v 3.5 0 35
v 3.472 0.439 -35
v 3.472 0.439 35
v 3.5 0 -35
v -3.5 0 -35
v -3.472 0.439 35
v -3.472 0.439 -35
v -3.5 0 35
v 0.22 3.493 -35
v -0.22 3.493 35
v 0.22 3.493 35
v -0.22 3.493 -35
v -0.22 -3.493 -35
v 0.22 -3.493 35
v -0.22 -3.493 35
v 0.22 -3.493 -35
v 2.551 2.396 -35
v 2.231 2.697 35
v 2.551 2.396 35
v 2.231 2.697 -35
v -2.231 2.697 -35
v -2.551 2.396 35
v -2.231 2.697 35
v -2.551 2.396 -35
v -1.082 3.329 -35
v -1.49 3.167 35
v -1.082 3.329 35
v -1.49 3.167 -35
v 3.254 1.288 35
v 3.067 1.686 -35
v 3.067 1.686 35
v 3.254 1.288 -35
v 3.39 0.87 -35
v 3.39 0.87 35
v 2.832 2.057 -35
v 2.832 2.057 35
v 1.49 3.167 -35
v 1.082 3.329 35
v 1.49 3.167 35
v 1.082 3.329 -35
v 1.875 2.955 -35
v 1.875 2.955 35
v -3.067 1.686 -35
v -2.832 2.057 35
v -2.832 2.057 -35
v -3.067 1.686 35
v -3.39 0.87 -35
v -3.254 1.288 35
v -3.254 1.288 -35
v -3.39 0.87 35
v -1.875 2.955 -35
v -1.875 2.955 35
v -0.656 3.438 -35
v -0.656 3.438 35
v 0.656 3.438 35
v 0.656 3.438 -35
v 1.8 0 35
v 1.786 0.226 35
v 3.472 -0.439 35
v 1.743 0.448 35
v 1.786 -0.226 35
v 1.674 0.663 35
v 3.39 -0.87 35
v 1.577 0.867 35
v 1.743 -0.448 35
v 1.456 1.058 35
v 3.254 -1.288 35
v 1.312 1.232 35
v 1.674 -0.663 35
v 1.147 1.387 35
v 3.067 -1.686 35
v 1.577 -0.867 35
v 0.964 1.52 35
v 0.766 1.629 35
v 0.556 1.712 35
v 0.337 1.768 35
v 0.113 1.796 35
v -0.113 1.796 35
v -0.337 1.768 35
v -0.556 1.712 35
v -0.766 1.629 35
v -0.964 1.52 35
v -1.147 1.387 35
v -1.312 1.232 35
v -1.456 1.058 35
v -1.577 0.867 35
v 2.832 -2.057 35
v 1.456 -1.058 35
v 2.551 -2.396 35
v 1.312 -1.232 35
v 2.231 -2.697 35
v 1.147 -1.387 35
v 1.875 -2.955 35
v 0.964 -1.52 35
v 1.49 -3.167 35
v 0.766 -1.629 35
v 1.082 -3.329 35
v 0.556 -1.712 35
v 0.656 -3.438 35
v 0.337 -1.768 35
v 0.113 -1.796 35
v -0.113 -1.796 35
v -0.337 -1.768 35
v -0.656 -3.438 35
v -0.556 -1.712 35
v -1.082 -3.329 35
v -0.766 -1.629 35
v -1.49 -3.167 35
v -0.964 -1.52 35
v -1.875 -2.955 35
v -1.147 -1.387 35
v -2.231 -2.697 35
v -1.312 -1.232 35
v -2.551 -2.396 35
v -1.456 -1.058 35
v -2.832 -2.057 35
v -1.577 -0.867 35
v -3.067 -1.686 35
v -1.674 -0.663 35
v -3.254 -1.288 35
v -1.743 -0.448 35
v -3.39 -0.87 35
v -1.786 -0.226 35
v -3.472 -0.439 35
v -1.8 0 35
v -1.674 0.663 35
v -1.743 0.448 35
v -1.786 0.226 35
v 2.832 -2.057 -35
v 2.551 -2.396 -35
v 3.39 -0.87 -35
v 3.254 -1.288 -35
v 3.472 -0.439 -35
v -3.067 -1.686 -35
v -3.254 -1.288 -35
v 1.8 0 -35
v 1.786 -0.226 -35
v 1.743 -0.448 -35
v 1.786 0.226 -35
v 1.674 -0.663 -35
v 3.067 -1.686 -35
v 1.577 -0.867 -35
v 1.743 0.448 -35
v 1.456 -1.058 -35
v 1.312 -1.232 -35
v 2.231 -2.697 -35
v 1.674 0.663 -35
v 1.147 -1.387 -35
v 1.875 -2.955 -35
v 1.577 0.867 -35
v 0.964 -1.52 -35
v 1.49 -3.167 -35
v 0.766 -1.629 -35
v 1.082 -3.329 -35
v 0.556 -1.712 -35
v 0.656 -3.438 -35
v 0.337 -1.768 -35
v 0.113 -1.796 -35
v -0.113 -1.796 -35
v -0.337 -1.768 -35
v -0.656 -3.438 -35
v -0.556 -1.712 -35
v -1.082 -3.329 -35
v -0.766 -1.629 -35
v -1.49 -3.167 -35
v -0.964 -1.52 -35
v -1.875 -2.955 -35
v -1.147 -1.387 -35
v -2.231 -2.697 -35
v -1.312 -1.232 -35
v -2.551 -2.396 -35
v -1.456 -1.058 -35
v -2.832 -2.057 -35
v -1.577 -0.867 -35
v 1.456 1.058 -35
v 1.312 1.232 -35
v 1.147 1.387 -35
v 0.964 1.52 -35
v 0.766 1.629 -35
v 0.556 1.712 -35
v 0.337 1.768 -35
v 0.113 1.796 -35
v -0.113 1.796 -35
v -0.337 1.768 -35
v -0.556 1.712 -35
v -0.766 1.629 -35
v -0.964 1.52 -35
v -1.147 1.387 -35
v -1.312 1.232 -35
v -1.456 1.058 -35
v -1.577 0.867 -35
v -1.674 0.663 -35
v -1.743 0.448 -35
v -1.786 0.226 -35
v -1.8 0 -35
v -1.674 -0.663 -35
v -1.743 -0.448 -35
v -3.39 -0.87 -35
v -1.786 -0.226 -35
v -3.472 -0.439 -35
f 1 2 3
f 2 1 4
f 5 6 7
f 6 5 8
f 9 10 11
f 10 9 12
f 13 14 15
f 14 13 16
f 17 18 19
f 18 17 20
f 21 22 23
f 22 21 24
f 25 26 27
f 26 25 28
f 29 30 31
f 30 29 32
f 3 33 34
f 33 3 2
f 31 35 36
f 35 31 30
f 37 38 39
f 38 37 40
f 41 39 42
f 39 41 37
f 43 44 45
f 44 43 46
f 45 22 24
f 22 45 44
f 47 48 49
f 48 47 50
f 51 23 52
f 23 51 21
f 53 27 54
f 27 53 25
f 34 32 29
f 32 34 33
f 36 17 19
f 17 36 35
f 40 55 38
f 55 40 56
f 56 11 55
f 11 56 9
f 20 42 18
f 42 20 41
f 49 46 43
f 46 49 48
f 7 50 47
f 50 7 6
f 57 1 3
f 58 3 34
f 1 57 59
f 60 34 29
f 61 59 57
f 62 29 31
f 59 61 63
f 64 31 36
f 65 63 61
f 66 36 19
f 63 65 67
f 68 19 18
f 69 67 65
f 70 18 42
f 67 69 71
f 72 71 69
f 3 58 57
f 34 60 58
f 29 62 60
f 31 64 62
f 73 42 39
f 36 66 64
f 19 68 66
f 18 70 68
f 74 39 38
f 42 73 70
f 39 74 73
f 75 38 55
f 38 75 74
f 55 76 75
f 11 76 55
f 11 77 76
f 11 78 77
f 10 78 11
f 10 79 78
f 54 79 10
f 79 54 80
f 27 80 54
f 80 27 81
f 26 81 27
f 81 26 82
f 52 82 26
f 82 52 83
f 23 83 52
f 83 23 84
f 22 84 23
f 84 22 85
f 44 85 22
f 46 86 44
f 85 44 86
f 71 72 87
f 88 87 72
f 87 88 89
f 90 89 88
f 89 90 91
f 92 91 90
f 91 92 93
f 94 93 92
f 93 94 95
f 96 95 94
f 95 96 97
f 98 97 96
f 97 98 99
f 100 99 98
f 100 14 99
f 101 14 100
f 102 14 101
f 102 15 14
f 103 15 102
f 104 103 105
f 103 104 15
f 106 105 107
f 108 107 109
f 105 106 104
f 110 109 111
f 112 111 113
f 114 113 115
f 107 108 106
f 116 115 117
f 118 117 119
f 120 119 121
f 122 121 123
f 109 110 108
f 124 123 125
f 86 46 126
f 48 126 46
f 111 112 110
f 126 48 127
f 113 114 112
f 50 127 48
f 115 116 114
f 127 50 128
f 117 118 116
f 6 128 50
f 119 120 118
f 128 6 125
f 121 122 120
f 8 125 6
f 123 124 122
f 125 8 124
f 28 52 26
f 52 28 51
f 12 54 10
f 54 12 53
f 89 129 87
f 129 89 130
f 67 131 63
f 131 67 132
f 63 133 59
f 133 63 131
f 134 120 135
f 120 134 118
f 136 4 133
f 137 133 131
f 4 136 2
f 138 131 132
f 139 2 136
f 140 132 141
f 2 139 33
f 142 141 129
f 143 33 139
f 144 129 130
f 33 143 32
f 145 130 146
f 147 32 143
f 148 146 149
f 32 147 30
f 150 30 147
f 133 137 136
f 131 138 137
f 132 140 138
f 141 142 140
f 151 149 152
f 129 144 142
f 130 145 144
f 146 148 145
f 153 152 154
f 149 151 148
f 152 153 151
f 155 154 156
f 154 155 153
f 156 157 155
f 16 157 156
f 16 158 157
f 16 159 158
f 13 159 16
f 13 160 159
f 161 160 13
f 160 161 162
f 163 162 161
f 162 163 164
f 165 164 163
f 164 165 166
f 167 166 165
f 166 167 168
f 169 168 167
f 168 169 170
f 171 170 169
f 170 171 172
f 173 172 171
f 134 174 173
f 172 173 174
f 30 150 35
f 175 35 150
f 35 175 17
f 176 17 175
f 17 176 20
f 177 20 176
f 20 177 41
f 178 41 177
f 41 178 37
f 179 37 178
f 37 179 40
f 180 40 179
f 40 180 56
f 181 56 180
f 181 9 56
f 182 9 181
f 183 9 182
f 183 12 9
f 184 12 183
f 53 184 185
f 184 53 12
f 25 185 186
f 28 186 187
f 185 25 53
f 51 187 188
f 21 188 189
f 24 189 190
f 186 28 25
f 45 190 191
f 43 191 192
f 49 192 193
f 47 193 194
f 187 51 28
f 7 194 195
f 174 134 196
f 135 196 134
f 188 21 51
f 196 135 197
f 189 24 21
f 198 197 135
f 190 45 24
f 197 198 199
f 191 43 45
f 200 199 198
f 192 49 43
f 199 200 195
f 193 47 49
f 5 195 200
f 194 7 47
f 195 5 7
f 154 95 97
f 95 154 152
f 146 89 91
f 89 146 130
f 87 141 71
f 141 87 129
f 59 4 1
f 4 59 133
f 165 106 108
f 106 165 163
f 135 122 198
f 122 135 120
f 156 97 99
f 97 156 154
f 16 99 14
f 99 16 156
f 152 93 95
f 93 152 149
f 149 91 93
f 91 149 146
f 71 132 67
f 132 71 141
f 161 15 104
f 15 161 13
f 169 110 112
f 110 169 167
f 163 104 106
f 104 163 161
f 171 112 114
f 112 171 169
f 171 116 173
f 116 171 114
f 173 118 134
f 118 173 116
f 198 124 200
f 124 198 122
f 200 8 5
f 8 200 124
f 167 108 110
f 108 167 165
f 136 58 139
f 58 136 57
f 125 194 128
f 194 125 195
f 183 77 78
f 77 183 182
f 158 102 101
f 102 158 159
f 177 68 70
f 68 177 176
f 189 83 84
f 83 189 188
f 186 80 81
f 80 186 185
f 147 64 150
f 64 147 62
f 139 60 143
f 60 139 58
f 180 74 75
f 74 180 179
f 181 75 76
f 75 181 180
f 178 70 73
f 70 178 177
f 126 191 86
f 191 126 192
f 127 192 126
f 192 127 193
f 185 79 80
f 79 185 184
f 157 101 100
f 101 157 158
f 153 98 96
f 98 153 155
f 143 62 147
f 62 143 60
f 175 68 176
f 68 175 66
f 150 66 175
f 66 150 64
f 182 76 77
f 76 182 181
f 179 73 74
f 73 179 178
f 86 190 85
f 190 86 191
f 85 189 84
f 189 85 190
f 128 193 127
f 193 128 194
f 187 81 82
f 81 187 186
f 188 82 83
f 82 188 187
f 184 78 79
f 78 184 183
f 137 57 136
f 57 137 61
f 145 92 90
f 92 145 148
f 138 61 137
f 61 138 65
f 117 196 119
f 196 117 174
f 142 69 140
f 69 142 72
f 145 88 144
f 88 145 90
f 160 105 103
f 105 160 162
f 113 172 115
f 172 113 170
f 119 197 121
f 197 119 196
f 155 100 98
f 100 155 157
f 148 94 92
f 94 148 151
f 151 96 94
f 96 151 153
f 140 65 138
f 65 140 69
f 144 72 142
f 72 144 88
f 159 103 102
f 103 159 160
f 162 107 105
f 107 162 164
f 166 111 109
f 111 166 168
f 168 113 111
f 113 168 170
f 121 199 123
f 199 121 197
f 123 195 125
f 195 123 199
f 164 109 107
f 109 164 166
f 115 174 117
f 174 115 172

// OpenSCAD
$fn = 50;


difference() {
	union() {
		translate(v = [0, 0, -35.0000000000]) {
			cylinder(h = 70, r = 3.5000000000);
		}
	}
	union() {
		translate(v = [0, 0, -100.0000000000]) {
			cylinder(h = 200, r = 1.8000000000);
		}
	}
}
